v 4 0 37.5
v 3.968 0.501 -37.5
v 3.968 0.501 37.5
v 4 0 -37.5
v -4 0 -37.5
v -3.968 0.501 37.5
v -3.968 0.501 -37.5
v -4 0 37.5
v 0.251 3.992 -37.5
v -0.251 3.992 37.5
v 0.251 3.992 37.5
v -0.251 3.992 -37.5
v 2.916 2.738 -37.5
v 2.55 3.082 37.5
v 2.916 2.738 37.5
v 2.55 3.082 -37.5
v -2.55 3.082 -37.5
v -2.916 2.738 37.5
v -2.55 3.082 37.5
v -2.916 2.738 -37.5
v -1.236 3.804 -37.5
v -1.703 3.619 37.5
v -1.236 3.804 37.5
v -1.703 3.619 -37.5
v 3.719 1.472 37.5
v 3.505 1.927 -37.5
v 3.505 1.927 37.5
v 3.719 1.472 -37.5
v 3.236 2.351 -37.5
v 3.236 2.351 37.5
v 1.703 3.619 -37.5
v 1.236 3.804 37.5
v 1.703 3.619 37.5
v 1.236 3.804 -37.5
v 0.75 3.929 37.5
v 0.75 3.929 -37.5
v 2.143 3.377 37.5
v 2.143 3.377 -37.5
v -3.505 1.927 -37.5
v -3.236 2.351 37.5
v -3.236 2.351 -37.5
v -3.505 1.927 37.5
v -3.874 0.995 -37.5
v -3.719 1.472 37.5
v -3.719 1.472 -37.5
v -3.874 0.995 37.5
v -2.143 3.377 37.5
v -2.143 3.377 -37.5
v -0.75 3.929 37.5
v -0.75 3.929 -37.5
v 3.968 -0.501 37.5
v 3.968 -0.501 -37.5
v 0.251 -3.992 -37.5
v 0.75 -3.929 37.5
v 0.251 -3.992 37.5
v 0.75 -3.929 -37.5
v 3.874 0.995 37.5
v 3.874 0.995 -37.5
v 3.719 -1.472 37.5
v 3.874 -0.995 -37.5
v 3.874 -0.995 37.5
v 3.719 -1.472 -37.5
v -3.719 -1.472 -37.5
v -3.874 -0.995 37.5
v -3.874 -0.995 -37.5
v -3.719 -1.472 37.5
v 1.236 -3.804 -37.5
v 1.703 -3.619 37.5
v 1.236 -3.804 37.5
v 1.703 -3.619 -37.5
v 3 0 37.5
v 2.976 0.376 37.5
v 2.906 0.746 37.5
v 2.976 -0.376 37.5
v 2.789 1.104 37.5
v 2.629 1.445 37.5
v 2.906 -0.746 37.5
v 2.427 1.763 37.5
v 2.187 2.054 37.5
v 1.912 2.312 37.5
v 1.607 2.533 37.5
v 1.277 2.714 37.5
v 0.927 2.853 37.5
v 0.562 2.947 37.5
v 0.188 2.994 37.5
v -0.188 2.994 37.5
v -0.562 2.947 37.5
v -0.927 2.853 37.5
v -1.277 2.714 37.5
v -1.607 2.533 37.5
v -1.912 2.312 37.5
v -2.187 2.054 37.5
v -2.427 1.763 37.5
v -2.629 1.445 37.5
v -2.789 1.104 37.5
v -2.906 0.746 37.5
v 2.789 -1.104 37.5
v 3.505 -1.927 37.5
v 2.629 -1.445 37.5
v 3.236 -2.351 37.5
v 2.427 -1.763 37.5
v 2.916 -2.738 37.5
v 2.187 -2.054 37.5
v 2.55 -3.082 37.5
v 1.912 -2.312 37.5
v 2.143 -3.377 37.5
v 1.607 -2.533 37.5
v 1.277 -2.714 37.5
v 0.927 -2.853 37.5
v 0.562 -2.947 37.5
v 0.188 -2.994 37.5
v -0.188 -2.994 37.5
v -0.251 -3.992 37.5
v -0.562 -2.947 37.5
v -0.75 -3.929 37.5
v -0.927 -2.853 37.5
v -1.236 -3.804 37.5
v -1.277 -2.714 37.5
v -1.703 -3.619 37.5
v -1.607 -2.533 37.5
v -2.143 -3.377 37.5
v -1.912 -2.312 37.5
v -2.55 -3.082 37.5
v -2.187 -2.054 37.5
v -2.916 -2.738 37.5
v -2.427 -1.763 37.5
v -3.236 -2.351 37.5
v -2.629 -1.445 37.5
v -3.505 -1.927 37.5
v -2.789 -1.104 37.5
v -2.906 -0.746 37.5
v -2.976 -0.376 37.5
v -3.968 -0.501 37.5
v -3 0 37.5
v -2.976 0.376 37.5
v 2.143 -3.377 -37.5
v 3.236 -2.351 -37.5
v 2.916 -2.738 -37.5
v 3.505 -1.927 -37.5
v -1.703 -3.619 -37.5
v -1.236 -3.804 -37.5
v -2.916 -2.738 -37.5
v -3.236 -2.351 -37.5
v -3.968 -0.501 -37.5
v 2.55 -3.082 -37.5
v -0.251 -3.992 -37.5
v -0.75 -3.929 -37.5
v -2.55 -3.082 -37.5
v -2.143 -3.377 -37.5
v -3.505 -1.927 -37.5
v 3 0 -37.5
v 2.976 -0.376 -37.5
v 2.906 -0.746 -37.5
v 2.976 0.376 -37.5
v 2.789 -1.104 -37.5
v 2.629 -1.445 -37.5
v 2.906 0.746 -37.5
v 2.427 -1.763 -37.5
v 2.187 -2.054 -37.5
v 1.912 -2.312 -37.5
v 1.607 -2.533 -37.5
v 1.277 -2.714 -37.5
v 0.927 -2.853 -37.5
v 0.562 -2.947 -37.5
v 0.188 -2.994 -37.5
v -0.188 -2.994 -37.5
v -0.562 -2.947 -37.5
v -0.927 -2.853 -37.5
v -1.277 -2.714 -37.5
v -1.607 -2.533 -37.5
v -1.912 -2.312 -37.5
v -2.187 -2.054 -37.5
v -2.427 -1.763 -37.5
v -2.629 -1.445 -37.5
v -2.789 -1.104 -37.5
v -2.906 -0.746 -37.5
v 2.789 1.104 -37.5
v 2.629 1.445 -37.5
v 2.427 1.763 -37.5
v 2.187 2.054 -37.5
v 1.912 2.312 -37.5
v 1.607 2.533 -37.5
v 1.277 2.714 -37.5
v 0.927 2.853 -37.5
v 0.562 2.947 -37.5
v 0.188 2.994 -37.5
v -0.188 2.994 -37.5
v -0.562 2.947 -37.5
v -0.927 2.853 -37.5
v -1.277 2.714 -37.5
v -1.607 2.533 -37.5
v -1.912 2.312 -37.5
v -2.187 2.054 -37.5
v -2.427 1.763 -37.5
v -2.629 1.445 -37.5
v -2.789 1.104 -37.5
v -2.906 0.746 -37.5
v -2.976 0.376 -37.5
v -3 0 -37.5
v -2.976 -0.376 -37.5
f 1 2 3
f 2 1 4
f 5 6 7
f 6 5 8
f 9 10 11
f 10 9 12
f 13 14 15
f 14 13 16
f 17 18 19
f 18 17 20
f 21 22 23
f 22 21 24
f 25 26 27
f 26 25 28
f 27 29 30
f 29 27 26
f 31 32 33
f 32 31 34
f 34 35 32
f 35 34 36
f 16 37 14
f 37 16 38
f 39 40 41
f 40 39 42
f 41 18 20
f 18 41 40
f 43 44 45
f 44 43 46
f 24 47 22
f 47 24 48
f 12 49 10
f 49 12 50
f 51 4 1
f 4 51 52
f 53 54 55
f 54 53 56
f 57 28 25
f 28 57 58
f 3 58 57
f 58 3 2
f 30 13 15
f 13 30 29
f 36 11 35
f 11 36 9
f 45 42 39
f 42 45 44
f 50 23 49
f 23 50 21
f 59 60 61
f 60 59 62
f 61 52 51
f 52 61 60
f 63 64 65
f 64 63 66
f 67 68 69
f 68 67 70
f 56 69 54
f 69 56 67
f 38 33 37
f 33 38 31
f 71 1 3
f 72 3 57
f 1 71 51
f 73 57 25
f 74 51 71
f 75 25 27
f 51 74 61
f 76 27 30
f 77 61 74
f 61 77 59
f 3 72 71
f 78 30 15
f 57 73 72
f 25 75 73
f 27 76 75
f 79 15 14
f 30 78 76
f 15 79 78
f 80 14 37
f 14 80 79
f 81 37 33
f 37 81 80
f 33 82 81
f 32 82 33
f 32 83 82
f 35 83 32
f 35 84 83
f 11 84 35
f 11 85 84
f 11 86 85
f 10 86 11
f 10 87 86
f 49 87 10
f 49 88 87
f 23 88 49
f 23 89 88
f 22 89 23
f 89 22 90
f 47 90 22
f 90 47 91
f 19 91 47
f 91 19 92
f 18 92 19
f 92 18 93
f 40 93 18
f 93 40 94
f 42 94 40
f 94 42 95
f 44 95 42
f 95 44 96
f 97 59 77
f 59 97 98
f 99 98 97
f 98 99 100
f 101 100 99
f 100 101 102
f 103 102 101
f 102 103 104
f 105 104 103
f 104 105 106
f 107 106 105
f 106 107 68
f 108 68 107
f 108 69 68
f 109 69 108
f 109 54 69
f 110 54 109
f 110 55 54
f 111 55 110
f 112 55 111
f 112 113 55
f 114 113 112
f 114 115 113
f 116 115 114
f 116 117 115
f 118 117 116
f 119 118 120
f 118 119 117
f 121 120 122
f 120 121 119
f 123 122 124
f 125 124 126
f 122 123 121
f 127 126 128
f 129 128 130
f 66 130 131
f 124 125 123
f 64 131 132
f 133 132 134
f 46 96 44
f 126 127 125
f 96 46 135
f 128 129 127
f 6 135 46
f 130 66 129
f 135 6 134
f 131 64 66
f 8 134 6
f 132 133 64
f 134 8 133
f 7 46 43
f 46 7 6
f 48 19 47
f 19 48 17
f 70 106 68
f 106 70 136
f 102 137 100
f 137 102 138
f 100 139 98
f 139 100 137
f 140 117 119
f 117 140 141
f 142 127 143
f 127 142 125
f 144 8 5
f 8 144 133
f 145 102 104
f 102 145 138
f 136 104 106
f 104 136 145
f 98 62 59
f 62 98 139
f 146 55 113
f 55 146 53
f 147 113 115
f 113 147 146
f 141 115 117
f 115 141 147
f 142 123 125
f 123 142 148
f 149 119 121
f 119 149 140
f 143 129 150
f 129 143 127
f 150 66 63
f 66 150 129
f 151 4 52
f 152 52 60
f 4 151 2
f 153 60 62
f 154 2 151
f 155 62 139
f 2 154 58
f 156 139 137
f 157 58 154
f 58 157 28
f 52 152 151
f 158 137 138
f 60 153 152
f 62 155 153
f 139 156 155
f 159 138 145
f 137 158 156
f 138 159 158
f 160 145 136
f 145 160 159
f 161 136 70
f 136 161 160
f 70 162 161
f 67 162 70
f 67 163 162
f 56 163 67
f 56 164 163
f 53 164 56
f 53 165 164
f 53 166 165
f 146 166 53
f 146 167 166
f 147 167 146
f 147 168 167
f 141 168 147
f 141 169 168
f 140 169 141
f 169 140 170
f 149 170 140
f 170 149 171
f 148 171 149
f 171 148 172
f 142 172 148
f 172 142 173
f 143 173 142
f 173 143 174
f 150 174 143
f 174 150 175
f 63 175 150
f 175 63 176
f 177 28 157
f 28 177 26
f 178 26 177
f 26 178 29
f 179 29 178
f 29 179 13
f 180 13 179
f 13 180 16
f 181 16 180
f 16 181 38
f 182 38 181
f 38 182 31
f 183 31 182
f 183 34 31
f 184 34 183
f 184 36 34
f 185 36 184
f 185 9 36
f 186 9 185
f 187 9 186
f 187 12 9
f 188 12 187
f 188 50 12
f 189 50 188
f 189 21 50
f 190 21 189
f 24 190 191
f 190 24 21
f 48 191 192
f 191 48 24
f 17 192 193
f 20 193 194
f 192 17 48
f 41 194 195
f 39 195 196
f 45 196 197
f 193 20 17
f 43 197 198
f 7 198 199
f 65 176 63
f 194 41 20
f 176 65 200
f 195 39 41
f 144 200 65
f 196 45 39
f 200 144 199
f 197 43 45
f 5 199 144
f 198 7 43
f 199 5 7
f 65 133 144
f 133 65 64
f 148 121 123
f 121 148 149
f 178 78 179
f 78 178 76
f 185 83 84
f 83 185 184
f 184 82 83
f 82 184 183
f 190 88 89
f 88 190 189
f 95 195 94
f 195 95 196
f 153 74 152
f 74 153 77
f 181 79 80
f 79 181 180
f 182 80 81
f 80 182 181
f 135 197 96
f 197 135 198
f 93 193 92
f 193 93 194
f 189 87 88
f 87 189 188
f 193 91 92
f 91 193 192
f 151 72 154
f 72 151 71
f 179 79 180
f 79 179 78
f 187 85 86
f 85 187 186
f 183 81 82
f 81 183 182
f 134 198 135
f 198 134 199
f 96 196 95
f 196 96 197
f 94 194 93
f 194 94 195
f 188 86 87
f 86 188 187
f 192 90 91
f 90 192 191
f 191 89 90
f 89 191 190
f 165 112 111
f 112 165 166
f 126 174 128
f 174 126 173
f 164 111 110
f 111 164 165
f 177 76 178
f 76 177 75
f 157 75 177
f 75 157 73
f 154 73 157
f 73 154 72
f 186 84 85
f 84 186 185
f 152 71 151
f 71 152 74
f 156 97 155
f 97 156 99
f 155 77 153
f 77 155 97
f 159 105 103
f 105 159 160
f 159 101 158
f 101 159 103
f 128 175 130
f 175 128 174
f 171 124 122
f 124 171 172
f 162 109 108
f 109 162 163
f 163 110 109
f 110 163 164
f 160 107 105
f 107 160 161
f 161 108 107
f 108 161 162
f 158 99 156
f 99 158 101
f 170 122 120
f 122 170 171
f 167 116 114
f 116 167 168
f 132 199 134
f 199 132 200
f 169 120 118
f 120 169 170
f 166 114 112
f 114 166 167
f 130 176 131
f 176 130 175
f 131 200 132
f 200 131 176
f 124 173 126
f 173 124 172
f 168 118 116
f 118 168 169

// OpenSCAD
$fn = 50;


difference() {
	union() {
		translate(v = [0, 0, -37.5000000000]) {
			cylinder(h = 75, r = 4.0000000000);
		}
	}
	union() {
		translate(v = [0, 0, -100.0000000000]) {
			cylinder(h = 200, r = 3.0000000000);
		}
	}
}
